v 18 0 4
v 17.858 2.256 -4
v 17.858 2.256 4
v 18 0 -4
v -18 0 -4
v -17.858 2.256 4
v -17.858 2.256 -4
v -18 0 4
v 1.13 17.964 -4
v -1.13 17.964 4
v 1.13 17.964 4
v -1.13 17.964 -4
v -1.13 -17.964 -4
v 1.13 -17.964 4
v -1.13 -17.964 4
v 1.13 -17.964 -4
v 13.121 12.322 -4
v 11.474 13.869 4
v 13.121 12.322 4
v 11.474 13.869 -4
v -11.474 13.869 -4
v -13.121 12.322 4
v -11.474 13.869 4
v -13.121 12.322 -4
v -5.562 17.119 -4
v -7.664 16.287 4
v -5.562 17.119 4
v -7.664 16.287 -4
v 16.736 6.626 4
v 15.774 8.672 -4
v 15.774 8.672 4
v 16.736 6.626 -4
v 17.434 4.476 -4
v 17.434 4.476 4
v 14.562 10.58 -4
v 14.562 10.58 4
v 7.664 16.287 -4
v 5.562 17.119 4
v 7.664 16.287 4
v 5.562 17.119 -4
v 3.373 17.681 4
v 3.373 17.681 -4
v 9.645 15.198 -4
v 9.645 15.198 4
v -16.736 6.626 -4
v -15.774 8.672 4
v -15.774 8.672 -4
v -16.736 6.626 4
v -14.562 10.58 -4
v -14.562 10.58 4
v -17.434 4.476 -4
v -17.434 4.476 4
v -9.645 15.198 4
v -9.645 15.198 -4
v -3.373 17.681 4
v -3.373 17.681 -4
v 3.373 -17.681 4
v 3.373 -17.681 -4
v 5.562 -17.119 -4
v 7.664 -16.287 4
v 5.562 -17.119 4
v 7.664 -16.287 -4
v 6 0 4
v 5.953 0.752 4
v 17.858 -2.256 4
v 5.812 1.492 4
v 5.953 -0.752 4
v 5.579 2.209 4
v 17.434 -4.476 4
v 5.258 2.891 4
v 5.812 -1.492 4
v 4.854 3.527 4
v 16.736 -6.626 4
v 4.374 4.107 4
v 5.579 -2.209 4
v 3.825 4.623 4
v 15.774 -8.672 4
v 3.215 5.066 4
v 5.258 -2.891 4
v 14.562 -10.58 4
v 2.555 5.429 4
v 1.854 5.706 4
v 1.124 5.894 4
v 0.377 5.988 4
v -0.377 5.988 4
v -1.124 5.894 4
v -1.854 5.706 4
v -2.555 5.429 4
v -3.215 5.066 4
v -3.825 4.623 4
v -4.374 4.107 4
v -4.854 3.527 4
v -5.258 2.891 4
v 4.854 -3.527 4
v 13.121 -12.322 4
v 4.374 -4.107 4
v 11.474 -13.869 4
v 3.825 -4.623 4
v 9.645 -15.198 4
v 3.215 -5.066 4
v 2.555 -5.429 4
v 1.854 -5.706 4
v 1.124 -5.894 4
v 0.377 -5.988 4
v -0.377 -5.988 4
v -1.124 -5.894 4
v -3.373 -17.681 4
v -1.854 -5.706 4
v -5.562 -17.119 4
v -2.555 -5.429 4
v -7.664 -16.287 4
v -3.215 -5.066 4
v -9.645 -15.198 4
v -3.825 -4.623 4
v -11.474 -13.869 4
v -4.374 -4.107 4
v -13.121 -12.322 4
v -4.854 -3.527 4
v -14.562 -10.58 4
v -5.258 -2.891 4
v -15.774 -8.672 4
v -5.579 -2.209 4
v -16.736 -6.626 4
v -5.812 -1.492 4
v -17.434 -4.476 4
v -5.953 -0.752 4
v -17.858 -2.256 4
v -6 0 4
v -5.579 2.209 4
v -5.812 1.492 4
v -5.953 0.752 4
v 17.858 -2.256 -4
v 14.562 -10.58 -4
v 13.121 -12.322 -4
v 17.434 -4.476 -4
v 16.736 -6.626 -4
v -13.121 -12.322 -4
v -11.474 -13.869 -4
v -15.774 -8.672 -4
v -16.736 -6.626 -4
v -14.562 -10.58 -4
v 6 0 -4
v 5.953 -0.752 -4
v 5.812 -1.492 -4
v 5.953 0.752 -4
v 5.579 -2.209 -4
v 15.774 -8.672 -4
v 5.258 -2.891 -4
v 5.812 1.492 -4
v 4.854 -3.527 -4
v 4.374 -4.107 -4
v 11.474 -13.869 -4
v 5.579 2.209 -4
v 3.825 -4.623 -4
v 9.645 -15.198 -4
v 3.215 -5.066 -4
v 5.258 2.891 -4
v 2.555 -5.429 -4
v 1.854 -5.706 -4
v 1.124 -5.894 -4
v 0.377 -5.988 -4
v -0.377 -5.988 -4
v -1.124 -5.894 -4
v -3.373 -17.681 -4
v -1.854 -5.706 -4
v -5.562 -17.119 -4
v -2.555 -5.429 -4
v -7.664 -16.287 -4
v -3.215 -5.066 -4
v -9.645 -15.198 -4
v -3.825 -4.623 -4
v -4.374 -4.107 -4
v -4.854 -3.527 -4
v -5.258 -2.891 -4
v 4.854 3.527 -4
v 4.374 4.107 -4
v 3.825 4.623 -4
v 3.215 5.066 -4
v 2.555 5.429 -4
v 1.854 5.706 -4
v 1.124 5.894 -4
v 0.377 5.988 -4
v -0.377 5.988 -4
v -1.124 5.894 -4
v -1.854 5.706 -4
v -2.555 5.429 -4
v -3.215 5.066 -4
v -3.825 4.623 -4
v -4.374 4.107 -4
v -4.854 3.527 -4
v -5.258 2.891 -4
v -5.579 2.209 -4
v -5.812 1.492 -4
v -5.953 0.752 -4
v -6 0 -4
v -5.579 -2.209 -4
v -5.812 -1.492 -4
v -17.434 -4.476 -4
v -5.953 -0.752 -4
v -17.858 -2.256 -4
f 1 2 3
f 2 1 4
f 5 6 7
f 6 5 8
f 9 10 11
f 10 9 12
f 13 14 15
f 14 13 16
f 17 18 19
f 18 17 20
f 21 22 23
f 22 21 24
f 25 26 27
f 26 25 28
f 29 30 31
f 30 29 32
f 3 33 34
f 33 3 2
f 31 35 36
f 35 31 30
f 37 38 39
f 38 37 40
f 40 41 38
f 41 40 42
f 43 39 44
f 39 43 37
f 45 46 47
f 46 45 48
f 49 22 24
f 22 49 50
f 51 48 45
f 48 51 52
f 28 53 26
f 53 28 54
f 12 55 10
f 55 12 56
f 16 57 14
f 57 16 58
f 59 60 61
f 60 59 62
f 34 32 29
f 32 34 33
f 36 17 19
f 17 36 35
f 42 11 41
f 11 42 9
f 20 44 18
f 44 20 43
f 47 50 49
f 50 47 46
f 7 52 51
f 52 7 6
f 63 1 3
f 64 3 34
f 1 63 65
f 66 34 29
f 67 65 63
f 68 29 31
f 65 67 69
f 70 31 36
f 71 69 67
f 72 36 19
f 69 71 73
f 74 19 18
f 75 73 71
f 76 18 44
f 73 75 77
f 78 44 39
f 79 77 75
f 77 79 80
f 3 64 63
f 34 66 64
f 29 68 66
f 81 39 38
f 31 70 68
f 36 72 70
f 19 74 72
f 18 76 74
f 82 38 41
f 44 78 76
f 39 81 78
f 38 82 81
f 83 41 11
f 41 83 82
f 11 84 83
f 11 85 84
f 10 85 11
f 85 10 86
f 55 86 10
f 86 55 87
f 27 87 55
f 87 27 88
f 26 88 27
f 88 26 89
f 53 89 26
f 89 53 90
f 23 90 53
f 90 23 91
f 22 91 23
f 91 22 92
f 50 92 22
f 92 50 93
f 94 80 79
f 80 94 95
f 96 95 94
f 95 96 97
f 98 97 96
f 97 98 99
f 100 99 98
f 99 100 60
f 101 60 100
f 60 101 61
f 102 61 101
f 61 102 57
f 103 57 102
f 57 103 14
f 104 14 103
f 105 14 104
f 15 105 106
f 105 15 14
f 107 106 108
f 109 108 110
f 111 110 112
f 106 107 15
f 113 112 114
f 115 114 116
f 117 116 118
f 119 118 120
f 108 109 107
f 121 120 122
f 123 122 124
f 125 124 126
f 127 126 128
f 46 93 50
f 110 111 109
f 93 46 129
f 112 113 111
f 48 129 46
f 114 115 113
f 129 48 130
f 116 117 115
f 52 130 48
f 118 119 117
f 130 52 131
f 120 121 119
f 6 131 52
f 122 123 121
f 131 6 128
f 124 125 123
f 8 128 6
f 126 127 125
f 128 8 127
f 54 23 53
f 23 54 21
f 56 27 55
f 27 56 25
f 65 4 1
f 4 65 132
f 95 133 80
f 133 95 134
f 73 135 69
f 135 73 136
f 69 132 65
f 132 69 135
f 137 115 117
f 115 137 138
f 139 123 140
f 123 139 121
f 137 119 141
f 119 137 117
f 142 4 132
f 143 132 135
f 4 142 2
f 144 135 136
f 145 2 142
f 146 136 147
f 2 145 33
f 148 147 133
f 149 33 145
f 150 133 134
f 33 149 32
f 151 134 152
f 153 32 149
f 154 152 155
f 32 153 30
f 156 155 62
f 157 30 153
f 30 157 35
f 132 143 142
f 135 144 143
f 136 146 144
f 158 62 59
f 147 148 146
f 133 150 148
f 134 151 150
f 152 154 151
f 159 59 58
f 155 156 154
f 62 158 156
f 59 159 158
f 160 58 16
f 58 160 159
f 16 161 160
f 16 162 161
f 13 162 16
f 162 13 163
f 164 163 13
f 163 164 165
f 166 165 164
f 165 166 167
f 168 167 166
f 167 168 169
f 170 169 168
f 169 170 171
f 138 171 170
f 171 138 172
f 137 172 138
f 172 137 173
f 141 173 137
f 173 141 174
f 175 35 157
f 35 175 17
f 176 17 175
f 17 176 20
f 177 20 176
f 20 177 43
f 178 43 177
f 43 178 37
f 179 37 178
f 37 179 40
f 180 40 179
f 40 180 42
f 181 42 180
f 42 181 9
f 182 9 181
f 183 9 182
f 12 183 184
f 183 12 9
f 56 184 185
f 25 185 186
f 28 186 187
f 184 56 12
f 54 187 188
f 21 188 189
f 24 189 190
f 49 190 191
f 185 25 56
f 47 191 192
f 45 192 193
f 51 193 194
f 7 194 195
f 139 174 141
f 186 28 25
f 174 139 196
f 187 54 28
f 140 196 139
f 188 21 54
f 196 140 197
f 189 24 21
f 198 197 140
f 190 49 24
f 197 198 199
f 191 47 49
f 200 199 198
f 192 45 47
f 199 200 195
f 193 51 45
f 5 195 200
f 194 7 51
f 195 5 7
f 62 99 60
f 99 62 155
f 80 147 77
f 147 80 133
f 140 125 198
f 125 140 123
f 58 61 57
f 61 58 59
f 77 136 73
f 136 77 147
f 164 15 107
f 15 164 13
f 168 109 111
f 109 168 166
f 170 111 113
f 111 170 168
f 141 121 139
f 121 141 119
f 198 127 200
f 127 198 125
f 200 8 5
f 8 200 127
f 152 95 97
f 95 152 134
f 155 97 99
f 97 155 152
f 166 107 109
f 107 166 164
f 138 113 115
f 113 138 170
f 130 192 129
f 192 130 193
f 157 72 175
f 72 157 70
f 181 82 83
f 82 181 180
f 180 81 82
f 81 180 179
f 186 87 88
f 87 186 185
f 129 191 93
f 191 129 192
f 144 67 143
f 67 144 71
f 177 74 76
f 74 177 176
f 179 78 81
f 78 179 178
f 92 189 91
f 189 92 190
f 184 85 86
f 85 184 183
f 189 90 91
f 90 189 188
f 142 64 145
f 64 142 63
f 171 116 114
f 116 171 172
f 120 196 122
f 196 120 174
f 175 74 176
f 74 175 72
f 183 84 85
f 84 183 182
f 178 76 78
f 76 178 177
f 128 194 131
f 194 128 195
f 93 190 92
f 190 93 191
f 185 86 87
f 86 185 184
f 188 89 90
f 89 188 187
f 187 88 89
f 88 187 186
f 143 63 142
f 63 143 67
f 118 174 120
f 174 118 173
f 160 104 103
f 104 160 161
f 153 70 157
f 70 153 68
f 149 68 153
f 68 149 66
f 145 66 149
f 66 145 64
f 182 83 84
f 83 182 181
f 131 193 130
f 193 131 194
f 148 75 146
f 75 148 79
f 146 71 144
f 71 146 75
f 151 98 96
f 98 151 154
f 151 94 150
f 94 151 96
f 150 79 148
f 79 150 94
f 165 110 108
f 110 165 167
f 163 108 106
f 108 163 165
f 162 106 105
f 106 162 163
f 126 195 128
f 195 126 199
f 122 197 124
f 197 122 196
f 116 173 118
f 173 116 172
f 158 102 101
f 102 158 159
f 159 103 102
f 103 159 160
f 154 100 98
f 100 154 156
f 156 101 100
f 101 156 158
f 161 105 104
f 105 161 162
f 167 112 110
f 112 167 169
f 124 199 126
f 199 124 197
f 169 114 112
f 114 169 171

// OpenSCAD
$fn = 50;


difference() {
	union() {
		translate(v = [0, 0, -4.0000000000]) {
			cylinder(h = 8, r = 18.0000000000);
		}
	}
	union() {
		translate(v = [0, 0, -100.0000000000]) {
			cylinder(h = 200, r = 6);
		}
	}
}
